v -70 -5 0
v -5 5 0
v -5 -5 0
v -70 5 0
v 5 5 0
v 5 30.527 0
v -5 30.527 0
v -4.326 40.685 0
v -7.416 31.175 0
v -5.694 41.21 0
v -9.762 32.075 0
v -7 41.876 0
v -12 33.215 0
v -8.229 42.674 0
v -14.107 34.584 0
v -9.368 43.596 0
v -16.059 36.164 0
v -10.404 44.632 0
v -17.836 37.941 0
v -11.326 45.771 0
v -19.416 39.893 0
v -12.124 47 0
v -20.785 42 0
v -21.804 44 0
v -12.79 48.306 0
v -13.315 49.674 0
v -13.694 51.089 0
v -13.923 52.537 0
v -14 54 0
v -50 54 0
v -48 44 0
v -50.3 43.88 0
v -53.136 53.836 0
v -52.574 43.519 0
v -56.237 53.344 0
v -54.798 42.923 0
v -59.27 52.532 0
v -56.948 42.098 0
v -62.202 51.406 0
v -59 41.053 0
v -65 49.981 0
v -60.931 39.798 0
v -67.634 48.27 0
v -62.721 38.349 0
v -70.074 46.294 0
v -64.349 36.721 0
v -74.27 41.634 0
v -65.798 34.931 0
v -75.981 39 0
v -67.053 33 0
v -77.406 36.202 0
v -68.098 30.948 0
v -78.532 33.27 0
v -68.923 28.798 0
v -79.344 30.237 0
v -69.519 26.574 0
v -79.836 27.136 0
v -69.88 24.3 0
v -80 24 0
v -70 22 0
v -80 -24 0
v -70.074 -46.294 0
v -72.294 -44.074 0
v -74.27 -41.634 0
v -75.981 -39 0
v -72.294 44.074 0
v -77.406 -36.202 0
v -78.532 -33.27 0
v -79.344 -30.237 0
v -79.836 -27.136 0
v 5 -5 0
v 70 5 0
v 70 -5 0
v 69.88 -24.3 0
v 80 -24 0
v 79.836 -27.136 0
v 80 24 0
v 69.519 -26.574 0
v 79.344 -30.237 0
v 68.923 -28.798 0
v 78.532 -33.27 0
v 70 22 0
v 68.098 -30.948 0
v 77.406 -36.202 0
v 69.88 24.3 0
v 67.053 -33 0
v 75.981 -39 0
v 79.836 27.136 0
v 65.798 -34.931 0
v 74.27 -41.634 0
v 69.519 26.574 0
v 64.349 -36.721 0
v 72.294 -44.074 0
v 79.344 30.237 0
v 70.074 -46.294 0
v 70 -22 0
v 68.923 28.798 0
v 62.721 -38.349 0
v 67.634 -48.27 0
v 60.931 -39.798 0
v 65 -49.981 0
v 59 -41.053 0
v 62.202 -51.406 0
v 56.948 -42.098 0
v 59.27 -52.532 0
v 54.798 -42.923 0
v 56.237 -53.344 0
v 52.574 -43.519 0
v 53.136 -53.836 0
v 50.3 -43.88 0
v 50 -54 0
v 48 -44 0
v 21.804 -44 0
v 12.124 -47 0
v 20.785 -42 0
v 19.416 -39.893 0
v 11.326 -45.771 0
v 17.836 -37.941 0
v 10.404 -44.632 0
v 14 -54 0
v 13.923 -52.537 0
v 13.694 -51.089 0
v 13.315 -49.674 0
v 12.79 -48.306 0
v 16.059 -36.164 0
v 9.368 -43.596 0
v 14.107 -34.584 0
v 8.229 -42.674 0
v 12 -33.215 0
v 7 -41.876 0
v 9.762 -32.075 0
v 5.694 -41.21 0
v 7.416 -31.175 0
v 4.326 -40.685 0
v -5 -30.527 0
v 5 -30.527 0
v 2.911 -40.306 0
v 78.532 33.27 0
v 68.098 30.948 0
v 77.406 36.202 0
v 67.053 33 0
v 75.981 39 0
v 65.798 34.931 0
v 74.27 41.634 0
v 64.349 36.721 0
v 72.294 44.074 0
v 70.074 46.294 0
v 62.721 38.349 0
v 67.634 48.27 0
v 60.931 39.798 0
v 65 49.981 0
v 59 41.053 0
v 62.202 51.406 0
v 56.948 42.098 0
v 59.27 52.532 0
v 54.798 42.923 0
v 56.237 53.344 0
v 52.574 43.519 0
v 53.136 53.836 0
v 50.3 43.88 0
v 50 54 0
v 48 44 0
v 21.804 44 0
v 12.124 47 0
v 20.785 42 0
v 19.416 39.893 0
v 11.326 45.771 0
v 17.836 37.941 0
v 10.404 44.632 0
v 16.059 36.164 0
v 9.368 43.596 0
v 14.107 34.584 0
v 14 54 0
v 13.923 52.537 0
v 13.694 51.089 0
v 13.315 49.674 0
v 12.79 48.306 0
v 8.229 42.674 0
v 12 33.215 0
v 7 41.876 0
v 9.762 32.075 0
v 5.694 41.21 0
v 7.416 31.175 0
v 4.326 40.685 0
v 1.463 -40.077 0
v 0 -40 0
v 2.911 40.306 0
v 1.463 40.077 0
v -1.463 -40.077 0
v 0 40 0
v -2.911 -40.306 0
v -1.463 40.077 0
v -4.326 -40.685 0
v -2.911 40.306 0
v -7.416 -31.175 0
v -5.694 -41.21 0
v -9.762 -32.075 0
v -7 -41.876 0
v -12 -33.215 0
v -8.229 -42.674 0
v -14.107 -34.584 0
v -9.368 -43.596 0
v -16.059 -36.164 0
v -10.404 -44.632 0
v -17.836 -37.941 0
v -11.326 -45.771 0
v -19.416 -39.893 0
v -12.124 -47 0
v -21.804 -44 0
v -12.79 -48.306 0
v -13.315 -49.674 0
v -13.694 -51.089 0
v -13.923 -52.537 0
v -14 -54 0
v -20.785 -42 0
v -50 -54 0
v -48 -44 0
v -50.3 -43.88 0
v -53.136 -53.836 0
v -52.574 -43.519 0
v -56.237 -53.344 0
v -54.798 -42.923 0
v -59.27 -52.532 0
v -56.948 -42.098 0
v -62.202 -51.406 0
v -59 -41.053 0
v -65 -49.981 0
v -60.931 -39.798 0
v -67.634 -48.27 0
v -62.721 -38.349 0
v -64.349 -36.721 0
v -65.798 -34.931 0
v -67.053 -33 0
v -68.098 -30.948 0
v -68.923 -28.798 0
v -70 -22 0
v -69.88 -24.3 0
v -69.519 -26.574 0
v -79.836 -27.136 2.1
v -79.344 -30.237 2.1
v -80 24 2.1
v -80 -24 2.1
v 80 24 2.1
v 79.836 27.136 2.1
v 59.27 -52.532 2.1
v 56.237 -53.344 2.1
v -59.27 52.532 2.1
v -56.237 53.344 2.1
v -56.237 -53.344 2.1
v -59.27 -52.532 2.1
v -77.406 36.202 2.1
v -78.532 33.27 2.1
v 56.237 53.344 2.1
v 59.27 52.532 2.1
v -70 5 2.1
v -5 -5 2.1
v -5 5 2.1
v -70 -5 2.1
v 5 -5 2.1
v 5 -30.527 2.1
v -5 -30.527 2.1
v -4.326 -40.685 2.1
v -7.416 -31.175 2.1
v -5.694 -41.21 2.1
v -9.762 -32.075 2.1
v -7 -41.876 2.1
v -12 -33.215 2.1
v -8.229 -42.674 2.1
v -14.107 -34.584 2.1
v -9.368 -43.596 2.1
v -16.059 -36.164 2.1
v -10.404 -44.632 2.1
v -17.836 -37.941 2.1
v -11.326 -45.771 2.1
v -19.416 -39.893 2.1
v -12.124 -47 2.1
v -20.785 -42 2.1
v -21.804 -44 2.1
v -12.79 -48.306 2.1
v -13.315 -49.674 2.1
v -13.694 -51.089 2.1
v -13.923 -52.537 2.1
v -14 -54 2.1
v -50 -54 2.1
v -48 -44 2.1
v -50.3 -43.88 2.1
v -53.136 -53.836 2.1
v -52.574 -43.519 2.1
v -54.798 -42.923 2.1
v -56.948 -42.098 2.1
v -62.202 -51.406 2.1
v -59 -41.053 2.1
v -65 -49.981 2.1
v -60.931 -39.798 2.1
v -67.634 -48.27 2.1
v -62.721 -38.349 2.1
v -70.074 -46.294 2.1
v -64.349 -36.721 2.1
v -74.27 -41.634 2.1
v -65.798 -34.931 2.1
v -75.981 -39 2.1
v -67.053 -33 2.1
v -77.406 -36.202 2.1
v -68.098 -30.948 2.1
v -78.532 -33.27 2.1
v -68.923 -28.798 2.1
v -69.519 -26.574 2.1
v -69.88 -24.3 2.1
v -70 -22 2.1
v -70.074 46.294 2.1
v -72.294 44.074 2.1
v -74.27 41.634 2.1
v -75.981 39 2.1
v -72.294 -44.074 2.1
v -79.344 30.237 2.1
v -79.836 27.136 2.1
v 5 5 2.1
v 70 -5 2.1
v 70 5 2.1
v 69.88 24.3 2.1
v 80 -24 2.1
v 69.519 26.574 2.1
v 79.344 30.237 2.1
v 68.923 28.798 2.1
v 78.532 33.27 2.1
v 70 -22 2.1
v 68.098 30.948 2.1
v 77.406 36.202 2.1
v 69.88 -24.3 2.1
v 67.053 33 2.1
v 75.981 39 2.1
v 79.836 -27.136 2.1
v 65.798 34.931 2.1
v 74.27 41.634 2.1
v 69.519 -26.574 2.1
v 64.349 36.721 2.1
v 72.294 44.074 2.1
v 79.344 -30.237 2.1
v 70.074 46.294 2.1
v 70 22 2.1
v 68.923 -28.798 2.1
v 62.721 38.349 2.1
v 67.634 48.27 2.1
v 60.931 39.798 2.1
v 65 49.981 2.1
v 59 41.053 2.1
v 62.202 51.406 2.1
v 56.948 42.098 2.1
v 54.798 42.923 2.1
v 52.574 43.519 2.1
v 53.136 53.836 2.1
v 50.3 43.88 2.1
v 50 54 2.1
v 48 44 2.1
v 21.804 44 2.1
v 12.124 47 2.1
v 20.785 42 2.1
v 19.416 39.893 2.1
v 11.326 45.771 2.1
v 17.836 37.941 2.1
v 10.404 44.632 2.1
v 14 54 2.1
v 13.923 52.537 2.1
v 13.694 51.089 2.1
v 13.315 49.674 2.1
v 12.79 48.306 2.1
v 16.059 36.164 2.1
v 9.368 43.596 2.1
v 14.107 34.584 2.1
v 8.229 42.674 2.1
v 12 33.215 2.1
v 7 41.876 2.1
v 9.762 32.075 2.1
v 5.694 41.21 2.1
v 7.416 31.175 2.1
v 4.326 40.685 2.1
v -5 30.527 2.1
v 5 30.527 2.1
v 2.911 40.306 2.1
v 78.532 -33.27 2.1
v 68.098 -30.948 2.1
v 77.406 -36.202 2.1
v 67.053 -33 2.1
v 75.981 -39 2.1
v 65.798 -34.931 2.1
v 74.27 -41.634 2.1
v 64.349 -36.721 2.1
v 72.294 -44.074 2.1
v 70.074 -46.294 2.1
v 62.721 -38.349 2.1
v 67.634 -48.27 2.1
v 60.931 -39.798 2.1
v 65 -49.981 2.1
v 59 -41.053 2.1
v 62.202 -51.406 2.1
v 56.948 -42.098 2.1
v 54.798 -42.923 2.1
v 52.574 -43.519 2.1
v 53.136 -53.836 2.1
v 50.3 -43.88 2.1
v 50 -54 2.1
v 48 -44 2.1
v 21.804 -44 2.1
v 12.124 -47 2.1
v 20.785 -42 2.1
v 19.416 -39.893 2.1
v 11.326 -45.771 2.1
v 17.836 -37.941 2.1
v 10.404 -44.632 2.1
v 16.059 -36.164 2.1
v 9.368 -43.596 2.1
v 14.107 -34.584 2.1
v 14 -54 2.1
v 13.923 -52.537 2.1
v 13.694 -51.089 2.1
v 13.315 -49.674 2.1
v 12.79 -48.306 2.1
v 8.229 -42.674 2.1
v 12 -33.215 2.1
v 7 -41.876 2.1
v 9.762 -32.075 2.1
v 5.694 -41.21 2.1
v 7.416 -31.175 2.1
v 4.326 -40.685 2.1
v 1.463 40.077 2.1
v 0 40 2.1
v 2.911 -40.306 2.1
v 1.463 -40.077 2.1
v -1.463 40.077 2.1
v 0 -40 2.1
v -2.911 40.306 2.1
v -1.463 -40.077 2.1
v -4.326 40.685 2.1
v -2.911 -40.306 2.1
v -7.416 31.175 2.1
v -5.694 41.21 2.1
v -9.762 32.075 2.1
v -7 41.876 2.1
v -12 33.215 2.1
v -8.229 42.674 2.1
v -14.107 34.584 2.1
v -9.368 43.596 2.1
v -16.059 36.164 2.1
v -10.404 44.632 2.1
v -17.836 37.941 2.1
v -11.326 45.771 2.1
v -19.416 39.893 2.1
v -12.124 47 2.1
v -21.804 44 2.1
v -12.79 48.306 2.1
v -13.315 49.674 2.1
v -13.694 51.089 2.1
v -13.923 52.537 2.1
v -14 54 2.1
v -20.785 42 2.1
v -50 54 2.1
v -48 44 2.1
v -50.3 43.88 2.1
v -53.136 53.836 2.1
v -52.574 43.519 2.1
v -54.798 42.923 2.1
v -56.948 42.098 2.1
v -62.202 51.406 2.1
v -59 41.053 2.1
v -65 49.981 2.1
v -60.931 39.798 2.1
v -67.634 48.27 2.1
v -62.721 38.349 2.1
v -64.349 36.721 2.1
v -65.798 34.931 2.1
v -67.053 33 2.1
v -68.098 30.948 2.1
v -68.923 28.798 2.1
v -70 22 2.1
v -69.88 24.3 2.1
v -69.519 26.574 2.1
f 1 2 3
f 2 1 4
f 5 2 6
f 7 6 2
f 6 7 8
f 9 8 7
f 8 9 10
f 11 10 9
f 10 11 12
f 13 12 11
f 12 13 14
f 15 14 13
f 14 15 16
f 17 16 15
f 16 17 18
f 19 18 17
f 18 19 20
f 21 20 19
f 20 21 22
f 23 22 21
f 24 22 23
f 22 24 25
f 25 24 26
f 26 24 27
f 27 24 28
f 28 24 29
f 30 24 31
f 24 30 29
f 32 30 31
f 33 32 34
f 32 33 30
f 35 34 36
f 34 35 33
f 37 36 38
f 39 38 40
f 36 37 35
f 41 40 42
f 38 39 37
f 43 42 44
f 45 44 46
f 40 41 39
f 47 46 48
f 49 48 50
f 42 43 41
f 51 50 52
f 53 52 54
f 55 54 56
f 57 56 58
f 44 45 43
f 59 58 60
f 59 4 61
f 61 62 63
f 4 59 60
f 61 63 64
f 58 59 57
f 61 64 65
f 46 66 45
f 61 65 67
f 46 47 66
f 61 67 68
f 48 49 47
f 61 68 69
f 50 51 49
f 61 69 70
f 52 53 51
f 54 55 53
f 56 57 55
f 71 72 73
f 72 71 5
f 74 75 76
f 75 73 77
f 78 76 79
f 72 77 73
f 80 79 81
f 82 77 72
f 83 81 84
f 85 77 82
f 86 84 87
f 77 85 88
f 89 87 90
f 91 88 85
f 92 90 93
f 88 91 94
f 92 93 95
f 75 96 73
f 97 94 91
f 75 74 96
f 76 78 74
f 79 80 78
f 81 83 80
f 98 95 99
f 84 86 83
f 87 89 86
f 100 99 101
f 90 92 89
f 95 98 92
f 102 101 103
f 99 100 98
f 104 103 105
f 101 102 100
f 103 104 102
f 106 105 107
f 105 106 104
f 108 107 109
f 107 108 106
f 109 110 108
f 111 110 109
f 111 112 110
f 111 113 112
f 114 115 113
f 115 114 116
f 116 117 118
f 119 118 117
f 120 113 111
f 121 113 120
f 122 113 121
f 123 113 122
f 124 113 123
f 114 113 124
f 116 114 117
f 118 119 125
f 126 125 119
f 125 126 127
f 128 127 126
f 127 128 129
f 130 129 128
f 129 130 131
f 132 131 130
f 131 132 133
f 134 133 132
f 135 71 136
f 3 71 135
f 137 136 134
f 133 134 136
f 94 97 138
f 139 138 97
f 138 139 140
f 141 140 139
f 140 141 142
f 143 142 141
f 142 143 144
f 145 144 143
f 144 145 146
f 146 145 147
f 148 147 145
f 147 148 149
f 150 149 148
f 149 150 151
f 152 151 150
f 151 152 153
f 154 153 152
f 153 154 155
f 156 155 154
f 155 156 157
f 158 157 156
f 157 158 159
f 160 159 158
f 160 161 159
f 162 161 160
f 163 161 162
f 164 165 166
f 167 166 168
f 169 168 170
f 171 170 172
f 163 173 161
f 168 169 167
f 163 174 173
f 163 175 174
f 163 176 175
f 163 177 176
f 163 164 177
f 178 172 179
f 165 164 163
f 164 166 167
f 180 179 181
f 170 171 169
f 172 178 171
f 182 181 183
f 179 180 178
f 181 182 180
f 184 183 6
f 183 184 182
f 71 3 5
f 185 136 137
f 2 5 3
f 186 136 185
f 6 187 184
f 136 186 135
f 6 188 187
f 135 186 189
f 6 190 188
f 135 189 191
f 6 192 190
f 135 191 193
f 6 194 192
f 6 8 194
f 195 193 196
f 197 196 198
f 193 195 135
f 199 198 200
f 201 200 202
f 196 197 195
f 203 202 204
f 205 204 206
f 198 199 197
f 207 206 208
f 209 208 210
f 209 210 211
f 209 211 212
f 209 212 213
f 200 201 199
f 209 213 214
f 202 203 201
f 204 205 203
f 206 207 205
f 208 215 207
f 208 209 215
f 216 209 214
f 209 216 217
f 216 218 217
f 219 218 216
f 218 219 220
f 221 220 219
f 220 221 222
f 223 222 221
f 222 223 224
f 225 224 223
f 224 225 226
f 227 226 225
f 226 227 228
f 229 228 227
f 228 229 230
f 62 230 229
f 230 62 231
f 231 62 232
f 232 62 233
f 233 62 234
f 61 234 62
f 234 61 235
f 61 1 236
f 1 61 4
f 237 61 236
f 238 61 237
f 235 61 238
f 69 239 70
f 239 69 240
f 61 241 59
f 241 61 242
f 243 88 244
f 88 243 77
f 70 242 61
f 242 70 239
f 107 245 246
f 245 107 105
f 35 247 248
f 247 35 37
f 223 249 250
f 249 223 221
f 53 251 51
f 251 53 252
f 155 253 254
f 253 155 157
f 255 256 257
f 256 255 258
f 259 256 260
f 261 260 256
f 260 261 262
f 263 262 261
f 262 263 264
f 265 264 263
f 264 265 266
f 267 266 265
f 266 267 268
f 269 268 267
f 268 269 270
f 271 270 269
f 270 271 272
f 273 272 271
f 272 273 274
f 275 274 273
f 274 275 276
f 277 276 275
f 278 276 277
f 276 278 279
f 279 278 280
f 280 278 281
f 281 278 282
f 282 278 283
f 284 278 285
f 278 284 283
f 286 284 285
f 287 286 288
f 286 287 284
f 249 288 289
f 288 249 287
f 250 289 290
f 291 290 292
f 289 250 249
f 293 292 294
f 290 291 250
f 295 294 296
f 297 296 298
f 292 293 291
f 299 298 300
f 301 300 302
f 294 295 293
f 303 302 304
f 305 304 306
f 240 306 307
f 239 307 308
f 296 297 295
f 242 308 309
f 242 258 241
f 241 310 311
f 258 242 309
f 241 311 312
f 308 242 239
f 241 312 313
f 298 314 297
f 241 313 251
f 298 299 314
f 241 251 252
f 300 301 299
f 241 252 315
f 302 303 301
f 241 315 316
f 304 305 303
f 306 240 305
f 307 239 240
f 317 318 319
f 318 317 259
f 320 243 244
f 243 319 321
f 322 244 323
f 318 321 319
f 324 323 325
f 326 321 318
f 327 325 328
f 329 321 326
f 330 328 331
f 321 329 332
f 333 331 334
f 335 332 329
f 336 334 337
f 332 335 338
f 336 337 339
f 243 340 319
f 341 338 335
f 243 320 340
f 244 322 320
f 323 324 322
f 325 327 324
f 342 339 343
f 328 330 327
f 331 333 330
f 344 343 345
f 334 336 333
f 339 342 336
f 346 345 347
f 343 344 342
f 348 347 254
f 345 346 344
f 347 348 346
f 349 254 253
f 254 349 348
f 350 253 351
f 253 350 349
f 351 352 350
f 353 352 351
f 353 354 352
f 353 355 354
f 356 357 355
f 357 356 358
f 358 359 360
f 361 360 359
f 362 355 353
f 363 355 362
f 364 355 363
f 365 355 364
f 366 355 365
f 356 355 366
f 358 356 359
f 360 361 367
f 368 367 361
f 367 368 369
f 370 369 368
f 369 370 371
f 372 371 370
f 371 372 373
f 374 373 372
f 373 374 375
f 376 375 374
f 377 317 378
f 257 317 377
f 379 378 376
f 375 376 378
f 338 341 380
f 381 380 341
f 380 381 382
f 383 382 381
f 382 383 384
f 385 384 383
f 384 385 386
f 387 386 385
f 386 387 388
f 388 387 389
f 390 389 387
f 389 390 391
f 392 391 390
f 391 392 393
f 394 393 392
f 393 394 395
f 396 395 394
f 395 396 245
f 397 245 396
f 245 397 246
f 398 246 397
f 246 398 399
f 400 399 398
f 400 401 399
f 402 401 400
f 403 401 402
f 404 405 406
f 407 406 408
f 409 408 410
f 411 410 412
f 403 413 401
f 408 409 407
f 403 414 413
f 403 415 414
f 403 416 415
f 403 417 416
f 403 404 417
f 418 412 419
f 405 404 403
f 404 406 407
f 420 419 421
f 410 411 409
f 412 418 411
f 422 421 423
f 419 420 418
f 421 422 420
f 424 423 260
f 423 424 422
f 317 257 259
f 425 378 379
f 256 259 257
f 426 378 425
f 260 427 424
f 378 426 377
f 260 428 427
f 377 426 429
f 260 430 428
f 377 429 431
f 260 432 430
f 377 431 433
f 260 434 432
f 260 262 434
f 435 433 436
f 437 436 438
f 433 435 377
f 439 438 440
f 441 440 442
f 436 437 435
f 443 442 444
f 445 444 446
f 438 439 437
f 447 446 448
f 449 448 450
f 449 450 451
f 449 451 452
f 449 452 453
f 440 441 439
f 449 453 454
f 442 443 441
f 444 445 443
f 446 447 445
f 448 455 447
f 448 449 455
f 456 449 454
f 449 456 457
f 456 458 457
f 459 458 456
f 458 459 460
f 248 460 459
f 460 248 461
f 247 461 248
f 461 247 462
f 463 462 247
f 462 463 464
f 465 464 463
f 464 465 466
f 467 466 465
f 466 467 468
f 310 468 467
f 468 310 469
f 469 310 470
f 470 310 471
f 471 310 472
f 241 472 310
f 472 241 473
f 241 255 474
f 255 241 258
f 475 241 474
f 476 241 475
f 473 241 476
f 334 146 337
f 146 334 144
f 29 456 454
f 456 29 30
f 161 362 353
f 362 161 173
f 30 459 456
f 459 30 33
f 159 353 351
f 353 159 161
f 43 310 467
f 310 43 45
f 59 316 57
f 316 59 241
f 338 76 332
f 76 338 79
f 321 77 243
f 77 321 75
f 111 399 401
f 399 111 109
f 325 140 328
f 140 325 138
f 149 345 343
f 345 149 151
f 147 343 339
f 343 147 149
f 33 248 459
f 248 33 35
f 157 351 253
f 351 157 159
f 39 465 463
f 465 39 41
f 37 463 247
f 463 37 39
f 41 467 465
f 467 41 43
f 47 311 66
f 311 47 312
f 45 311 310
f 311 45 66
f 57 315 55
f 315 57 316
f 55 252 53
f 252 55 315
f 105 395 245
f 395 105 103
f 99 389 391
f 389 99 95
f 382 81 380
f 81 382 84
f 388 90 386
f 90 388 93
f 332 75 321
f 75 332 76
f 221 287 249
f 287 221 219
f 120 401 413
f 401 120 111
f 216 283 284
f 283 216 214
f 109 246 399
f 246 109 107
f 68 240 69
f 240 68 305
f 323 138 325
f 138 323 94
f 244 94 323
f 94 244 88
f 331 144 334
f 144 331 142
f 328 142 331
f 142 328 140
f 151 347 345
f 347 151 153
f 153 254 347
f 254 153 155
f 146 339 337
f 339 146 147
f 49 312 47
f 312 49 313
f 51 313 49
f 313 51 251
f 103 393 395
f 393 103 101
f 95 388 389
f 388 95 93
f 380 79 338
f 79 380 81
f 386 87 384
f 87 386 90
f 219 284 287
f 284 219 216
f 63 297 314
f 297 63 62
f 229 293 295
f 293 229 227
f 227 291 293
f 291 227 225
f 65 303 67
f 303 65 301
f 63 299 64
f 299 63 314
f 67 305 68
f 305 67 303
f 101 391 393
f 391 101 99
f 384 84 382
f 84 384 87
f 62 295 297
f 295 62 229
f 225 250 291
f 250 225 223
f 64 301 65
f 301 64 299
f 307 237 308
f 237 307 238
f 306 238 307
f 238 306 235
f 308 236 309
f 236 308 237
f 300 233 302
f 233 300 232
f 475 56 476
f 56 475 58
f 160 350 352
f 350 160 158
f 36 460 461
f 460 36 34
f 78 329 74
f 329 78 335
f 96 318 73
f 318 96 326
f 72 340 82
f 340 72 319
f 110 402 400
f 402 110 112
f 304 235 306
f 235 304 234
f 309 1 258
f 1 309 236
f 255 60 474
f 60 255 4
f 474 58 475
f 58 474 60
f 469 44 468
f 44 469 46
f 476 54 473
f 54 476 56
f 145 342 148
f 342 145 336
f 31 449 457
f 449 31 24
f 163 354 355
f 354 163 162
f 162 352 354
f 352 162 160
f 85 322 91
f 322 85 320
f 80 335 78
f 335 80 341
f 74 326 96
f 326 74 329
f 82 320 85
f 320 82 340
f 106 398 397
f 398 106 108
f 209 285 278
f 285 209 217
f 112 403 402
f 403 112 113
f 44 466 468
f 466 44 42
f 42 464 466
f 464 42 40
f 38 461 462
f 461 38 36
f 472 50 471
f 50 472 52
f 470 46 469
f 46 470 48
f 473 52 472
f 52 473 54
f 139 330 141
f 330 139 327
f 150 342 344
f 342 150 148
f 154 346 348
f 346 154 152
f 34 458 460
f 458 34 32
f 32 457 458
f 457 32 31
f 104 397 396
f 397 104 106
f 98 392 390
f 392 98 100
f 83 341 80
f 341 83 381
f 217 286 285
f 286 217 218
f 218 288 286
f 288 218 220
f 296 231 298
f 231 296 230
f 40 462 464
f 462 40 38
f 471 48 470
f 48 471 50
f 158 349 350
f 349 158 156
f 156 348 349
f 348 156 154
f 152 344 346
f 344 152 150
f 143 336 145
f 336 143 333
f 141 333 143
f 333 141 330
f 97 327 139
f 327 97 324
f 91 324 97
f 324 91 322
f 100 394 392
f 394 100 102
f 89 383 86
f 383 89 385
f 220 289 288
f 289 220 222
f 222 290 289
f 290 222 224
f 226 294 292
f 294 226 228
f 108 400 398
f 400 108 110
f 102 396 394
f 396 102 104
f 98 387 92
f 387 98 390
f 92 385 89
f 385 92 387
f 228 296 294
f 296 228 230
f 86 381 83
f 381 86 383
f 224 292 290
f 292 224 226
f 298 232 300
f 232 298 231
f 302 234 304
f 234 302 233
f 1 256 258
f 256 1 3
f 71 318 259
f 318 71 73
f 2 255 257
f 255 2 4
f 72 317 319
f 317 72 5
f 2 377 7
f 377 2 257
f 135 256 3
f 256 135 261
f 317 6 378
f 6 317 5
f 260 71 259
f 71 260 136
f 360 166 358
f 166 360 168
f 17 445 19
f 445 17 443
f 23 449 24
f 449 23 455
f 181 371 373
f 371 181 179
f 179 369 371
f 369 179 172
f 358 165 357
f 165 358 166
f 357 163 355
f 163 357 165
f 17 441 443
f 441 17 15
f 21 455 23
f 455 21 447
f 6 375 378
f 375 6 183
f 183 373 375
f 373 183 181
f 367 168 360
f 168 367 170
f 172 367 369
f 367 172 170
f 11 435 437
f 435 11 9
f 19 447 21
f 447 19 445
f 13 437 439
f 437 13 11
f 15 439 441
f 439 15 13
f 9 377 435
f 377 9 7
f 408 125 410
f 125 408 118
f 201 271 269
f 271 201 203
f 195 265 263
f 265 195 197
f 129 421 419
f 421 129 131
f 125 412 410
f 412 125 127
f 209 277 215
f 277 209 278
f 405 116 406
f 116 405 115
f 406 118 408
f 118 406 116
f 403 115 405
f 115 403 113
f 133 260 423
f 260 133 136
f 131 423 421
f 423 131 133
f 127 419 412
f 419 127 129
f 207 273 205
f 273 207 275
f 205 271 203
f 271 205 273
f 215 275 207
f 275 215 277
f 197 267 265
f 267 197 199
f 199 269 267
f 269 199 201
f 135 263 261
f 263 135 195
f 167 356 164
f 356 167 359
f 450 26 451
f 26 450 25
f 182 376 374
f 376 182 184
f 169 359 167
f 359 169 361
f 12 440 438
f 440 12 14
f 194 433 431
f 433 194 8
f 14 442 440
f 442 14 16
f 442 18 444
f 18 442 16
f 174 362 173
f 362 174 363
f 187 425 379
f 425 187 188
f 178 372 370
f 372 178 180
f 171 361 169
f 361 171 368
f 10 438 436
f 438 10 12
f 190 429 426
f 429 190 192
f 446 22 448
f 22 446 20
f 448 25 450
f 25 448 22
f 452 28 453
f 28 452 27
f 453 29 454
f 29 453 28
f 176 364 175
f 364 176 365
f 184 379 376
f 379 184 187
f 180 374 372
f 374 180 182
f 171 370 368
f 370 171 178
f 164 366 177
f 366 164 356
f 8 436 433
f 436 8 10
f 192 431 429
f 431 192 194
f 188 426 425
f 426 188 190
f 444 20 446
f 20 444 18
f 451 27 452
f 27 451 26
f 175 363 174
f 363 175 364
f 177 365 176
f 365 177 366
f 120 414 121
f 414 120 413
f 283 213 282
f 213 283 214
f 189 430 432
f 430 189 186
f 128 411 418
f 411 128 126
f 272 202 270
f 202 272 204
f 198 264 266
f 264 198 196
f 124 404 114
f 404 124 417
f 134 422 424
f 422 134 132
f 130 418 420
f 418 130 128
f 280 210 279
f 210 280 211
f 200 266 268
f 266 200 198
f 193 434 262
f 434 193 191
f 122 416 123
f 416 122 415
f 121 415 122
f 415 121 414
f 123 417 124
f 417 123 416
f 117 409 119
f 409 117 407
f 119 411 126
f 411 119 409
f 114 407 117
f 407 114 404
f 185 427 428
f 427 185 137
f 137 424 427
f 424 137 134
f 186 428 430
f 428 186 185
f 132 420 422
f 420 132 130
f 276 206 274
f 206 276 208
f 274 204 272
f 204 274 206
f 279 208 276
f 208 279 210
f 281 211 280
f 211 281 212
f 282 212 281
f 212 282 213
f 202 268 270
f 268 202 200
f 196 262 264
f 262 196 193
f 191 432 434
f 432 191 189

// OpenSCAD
/* huge-bin.scad
 *
 * Copyright (C) Robert B. Ross, 2016
 *
 * This software is released under the Creative Commons
 * Attribution-ShareAlike 4.0 International Public License.
 */

include <bintools.scad>

width = 10;
height = 2.1;

// Harbor Freight Medium
// 80mm wide, 77 bottom
// 54mm length, 52 bottom

% translate([-80/2,-54/2,0]) roundShapedBox(xDimTop=77,yDimTop=52,xDimBottom=77,yDimBottom=52,ht=3,wallThick=3);

intersection() {
   difference() { 
      union() { 
         hugeFrame();
      }
      union() { 
         translate([0,54,-0.5]) cylinder(r=14,h=height+1);
         translate([0,-54,-0.5]) cylinder(r=14,h=height+1);
      }
   }
   translate([0,0,-0.5]) roundBoxBottom(cornerRad=30,xDim=80*2,yDim=54*2,ht=10);
}
   
module hugeFrame() {
   difference() {
      roundBoxBottom(cornerRad=30,xDim=80*2,yDim=54*2,ht=height);
      translate([0,0,-0.5]) roundBoxBottom(cornerRad=30-8,xDim=(80-width)*2,
                                           yDim=(54-width)*2,ht=height+1);
   }

   translate([0,0,height/2]) cube(center=true, size=[80*2,width,height]);
   translate([0,0,height/2]) cube(center=true, size=[width,54*2,height]);
   translate([0,54,0]) cylinder(r=24,h=height);
   translate([0,-54,0]) cylinder(r=24,h=height);
}

/*
 * Local variables:
 *  mode: C
 *  c-indent-level: 3
 *  c-basic-offset: 3
 * End:
 *
 * vim: ts=8 sts=3 sw=3 expandtab
 */
